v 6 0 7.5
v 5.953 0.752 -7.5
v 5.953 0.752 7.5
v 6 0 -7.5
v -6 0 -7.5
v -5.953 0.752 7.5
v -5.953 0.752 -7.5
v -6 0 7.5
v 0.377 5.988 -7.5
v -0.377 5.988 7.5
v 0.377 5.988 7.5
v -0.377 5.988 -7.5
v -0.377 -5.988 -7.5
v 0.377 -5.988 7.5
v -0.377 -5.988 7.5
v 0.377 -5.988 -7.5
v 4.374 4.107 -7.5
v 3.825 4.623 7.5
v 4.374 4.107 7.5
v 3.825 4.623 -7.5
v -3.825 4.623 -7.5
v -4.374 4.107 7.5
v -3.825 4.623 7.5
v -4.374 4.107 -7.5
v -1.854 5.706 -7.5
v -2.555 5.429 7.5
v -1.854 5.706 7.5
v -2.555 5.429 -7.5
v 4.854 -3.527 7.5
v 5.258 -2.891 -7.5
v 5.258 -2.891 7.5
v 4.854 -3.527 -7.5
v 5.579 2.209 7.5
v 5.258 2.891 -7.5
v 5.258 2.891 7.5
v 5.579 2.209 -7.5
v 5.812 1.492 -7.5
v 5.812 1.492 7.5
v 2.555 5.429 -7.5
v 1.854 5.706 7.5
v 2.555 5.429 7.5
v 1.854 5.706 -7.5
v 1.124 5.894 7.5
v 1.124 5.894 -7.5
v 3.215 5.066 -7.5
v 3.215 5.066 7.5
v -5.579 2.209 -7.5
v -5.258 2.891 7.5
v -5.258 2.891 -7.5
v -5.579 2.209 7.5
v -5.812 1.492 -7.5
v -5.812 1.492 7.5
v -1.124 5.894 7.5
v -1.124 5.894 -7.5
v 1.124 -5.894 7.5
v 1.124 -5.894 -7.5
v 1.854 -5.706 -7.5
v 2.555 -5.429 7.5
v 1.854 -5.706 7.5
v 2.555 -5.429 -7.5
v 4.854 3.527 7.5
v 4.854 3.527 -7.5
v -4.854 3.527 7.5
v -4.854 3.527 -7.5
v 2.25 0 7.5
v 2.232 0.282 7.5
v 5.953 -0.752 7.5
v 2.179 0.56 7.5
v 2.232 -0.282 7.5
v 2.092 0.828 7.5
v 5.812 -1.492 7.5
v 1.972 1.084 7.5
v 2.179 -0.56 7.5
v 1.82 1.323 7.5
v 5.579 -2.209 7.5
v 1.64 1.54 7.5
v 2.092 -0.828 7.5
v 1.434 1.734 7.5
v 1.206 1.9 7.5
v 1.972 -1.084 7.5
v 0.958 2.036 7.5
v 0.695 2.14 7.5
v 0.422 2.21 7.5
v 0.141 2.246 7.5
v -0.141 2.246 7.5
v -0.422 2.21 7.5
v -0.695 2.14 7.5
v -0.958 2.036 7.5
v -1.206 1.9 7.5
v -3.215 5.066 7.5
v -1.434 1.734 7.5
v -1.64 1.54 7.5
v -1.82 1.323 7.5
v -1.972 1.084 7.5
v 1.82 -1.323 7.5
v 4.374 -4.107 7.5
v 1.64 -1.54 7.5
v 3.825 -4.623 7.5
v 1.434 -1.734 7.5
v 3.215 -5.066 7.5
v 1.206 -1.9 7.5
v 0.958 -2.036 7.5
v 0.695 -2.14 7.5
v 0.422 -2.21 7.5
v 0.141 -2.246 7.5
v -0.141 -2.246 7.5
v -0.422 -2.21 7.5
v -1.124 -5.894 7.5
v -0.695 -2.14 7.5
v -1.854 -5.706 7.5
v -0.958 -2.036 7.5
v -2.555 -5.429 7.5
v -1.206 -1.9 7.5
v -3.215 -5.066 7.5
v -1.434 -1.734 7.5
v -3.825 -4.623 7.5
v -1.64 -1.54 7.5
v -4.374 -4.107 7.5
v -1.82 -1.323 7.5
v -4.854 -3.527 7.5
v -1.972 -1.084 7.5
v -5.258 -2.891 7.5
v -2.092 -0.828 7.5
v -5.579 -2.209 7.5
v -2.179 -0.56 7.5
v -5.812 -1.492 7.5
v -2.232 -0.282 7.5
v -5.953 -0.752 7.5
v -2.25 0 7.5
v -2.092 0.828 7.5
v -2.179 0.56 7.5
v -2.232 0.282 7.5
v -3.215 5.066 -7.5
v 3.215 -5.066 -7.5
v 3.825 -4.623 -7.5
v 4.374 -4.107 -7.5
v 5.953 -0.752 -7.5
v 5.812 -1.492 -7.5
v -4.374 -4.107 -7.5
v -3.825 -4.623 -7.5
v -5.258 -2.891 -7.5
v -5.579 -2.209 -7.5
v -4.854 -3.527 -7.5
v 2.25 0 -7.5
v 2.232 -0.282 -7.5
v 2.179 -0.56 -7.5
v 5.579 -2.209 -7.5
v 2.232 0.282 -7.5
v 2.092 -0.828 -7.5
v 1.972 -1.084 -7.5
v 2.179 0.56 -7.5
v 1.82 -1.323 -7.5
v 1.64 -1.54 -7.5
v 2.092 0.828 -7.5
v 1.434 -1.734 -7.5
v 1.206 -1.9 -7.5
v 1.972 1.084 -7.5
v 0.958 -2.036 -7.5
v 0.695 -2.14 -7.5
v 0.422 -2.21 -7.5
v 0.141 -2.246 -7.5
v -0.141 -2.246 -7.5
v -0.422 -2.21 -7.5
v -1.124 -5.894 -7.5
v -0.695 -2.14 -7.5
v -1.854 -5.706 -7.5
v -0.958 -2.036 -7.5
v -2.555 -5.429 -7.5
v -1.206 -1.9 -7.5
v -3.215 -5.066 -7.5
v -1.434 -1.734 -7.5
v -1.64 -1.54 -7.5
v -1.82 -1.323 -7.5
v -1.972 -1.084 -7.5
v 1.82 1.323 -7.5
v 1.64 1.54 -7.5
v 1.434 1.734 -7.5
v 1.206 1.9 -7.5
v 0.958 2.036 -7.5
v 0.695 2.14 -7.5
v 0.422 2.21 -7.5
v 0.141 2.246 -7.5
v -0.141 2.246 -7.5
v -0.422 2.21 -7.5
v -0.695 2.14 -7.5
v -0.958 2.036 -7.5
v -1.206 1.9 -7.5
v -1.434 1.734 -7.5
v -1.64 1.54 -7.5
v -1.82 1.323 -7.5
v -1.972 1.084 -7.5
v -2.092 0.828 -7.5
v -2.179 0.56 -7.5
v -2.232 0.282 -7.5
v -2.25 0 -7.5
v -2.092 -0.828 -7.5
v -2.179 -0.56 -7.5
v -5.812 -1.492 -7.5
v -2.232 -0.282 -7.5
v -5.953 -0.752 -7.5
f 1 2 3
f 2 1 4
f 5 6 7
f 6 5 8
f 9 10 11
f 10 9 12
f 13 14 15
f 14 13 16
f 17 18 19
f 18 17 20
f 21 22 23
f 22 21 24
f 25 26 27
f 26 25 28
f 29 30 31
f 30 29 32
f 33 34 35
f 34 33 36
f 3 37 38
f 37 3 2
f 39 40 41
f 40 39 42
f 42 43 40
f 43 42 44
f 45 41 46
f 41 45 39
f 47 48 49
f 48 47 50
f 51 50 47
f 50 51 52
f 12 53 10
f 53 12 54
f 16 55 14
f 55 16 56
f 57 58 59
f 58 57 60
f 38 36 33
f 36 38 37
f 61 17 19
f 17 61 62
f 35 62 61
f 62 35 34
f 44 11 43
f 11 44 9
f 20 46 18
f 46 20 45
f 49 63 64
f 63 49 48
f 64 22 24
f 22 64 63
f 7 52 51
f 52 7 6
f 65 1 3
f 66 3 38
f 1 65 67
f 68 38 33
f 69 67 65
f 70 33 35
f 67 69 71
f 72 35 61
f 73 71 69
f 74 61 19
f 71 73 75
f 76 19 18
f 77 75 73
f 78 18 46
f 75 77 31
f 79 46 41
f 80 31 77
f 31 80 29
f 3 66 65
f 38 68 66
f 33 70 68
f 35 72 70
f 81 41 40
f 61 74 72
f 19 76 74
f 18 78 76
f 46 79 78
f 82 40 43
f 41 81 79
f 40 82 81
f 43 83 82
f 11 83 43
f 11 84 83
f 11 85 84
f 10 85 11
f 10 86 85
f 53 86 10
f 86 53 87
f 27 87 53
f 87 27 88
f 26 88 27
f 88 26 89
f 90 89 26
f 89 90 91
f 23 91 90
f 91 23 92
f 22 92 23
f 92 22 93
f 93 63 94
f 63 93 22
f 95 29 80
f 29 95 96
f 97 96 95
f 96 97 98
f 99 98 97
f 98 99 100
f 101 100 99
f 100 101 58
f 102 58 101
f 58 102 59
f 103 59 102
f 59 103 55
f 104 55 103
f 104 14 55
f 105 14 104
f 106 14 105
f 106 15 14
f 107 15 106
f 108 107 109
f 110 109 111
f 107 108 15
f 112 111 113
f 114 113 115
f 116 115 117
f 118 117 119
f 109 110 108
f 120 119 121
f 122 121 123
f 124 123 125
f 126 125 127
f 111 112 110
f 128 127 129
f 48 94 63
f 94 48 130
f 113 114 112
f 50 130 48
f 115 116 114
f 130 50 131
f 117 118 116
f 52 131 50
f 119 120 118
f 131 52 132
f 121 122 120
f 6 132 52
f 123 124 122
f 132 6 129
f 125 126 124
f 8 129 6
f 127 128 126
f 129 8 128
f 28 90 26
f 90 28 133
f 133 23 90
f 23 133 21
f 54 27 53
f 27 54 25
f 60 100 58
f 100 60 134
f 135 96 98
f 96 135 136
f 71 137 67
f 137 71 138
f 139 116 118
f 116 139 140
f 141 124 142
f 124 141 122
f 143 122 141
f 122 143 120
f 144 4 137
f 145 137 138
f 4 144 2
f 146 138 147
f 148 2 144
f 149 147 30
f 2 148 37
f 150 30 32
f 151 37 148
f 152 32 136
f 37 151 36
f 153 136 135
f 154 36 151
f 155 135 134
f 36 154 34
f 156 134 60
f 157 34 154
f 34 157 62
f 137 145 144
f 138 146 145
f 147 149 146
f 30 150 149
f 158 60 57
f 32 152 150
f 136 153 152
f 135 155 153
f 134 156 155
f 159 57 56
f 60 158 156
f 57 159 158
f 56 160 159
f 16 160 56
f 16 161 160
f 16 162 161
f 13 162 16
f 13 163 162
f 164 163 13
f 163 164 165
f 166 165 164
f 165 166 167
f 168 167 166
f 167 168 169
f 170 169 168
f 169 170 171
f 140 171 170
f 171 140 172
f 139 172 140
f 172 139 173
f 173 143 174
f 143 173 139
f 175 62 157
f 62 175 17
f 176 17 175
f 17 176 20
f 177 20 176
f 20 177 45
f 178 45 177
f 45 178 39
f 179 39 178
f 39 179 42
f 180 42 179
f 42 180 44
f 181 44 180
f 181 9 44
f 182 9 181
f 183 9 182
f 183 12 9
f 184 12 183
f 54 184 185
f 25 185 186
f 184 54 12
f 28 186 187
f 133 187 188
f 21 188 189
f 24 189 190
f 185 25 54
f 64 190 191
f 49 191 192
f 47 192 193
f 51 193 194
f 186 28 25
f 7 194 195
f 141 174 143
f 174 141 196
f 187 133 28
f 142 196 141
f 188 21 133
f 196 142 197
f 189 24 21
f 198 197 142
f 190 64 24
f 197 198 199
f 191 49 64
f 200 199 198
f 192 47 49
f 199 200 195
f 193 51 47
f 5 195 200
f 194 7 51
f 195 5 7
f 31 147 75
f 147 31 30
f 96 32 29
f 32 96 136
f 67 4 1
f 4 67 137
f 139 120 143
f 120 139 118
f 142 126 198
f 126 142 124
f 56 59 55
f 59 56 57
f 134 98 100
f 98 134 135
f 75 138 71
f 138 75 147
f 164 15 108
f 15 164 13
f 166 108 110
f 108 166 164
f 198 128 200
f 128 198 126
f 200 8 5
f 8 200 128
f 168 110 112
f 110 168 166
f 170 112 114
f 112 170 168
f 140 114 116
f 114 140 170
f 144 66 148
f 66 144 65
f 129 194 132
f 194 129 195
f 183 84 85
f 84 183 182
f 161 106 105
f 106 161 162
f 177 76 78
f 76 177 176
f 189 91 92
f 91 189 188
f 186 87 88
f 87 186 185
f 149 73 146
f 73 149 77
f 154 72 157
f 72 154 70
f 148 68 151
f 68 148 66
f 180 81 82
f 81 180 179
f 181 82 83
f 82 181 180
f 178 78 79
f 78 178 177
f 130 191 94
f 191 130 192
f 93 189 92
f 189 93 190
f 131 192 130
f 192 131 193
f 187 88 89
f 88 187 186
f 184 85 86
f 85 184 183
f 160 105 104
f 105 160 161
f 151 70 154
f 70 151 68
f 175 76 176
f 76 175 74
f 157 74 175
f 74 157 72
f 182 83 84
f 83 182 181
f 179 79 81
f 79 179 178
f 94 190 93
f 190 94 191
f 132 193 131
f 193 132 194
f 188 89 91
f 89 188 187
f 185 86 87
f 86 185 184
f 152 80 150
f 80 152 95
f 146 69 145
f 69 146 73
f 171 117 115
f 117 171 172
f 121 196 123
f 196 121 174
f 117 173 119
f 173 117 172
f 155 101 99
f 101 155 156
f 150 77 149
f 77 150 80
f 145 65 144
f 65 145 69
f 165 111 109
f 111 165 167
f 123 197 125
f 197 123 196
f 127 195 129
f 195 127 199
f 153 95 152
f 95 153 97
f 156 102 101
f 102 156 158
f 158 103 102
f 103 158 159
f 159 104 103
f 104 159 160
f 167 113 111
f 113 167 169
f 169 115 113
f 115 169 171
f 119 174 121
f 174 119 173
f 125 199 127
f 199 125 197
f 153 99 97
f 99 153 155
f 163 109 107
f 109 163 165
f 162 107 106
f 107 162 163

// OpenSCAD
$fn = 50;


difference() {
	union() {
		translate(v = [0, 0, -7.5000000000]) {
			cylinder(h = 15, r = 6.0000000000);
		}
	}
	union() {
		translate(v = [0, 0, -100.0000000000]) {
			cylinder(h = 200, r = 2.2500000000);
		}
	}
}
